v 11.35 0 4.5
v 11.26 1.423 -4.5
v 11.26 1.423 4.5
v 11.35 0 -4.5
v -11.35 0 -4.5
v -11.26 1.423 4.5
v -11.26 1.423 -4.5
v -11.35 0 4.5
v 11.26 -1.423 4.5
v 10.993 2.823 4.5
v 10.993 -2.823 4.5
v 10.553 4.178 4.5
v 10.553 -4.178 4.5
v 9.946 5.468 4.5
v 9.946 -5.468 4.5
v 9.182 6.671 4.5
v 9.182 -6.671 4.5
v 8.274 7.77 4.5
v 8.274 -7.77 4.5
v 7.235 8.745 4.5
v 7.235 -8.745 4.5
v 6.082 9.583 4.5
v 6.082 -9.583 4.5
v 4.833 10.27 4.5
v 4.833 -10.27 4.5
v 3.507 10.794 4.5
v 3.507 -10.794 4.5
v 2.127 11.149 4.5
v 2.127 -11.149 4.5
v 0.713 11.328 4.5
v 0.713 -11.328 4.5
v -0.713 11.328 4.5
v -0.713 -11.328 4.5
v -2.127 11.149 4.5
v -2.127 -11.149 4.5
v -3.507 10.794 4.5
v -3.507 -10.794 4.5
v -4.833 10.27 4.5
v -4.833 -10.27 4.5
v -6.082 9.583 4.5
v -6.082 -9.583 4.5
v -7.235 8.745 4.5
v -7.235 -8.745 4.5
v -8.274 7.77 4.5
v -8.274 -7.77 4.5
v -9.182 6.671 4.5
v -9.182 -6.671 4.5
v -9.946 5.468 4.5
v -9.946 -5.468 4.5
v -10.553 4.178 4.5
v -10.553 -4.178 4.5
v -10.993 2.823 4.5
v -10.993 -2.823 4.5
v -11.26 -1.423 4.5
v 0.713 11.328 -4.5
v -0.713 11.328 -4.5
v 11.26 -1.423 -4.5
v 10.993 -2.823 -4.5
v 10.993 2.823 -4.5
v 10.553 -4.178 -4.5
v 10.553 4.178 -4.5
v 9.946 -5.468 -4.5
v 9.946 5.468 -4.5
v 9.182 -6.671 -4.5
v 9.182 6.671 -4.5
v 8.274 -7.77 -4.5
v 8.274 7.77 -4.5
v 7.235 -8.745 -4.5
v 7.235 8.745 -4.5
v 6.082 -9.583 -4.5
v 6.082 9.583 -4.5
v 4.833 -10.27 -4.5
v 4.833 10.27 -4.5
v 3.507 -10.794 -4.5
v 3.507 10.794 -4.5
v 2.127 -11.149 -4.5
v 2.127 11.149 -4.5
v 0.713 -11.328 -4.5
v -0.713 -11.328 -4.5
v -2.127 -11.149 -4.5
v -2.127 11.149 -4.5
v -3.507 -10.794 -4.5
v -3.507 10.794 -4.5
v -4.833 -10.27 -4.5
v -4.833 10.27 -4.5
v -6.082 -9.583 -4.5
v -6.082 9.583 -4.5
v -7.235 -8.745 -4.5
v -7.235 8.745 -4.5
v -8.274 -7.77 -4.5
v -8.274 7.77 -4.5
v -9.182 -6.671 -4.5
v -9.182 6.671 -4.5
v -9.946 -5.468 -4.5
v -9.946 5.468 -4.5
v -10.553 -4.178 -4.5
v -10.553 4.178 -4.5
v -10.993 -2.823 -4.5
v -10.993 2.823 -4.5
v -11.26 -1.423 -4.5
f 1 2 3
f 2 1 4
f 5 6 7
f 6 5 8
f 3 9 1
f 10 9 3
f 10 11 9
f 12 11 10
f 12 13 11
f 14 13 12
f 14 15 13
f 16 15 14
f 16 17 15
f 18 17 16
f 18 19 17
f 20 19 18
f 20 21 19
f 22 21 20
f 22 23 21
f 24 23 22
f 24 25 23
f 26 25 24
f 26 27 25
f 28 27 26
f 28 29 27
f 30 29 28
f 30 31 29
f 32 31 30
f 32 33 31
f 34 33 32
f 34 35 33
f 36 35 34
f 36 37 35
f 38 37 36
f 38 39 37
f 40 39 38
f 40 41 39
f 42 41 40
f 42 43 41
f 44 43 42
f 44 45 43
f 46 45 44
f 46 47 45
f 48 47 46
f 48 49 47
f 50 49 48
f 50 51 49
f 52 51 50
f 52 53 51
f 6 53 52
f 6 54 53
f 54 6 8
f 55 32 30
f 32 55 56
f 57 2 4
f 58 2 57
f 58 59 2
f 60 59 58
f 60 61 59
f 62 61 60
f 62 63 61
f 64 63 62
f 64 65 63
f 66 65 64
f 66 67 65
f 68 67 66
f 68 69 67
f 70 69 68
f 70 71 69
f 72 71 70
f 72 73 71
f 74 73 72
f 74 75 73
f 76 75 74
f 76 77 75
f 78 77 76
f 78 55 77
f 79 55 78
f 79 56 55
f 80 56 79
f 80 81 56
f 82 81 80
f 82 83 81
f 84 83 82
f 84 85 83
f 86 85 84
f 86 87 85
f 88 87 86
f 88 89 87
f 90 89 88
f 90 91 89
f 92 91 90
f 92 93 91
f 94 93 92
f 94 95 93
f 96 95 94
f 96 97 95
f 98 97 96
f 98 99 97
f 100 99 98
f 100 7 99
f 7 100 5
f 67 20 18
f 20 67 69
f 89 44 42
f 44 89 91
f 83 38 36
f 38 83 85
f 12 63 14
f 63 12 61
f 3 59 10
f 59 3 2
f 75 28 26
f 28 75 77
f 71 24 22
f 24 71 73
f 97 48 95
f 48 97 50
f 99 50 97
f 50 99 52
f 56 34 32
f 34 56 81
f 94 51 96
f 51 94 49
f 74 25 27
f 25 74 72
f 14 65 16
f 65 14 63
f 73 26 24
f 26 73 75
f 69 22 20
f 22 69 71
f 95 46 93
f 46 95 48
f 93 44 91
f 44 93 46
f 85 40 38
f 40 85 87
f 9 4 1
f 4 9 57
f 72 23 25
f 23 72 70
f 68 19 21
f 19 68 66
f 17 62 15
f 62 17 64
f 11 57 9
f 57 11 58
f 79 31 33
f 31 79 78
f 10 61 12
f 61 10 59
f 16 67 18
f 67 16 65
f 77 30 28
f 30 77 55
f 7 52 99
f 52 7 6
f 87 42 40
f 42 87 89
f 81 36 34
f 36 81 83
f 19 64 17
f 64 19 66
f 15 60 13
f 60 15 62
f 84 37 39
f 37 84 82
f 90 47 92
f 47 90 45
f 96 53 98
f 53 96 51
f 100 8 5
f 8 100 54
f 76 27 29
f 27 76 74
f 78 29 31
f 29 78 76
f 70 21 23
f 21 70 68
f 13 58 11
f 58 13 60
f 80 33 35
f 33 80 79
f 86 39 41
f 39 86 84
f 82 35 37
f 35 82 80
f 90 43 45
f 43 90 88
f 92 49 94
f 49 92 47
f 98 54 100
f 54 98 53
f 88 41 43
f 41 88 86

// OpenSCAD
$fn = 50;


difference() {
	union() {
		translate(v = [0, 0, -4.5000000000]) {
			cylinder(h = 9, r = 11.3500000000);
		}
	}
	union() {
		translate(v = [0, 0, -100.0000000000]) {
			cylinder(h = 200, r = 0);
		}
	}
}
